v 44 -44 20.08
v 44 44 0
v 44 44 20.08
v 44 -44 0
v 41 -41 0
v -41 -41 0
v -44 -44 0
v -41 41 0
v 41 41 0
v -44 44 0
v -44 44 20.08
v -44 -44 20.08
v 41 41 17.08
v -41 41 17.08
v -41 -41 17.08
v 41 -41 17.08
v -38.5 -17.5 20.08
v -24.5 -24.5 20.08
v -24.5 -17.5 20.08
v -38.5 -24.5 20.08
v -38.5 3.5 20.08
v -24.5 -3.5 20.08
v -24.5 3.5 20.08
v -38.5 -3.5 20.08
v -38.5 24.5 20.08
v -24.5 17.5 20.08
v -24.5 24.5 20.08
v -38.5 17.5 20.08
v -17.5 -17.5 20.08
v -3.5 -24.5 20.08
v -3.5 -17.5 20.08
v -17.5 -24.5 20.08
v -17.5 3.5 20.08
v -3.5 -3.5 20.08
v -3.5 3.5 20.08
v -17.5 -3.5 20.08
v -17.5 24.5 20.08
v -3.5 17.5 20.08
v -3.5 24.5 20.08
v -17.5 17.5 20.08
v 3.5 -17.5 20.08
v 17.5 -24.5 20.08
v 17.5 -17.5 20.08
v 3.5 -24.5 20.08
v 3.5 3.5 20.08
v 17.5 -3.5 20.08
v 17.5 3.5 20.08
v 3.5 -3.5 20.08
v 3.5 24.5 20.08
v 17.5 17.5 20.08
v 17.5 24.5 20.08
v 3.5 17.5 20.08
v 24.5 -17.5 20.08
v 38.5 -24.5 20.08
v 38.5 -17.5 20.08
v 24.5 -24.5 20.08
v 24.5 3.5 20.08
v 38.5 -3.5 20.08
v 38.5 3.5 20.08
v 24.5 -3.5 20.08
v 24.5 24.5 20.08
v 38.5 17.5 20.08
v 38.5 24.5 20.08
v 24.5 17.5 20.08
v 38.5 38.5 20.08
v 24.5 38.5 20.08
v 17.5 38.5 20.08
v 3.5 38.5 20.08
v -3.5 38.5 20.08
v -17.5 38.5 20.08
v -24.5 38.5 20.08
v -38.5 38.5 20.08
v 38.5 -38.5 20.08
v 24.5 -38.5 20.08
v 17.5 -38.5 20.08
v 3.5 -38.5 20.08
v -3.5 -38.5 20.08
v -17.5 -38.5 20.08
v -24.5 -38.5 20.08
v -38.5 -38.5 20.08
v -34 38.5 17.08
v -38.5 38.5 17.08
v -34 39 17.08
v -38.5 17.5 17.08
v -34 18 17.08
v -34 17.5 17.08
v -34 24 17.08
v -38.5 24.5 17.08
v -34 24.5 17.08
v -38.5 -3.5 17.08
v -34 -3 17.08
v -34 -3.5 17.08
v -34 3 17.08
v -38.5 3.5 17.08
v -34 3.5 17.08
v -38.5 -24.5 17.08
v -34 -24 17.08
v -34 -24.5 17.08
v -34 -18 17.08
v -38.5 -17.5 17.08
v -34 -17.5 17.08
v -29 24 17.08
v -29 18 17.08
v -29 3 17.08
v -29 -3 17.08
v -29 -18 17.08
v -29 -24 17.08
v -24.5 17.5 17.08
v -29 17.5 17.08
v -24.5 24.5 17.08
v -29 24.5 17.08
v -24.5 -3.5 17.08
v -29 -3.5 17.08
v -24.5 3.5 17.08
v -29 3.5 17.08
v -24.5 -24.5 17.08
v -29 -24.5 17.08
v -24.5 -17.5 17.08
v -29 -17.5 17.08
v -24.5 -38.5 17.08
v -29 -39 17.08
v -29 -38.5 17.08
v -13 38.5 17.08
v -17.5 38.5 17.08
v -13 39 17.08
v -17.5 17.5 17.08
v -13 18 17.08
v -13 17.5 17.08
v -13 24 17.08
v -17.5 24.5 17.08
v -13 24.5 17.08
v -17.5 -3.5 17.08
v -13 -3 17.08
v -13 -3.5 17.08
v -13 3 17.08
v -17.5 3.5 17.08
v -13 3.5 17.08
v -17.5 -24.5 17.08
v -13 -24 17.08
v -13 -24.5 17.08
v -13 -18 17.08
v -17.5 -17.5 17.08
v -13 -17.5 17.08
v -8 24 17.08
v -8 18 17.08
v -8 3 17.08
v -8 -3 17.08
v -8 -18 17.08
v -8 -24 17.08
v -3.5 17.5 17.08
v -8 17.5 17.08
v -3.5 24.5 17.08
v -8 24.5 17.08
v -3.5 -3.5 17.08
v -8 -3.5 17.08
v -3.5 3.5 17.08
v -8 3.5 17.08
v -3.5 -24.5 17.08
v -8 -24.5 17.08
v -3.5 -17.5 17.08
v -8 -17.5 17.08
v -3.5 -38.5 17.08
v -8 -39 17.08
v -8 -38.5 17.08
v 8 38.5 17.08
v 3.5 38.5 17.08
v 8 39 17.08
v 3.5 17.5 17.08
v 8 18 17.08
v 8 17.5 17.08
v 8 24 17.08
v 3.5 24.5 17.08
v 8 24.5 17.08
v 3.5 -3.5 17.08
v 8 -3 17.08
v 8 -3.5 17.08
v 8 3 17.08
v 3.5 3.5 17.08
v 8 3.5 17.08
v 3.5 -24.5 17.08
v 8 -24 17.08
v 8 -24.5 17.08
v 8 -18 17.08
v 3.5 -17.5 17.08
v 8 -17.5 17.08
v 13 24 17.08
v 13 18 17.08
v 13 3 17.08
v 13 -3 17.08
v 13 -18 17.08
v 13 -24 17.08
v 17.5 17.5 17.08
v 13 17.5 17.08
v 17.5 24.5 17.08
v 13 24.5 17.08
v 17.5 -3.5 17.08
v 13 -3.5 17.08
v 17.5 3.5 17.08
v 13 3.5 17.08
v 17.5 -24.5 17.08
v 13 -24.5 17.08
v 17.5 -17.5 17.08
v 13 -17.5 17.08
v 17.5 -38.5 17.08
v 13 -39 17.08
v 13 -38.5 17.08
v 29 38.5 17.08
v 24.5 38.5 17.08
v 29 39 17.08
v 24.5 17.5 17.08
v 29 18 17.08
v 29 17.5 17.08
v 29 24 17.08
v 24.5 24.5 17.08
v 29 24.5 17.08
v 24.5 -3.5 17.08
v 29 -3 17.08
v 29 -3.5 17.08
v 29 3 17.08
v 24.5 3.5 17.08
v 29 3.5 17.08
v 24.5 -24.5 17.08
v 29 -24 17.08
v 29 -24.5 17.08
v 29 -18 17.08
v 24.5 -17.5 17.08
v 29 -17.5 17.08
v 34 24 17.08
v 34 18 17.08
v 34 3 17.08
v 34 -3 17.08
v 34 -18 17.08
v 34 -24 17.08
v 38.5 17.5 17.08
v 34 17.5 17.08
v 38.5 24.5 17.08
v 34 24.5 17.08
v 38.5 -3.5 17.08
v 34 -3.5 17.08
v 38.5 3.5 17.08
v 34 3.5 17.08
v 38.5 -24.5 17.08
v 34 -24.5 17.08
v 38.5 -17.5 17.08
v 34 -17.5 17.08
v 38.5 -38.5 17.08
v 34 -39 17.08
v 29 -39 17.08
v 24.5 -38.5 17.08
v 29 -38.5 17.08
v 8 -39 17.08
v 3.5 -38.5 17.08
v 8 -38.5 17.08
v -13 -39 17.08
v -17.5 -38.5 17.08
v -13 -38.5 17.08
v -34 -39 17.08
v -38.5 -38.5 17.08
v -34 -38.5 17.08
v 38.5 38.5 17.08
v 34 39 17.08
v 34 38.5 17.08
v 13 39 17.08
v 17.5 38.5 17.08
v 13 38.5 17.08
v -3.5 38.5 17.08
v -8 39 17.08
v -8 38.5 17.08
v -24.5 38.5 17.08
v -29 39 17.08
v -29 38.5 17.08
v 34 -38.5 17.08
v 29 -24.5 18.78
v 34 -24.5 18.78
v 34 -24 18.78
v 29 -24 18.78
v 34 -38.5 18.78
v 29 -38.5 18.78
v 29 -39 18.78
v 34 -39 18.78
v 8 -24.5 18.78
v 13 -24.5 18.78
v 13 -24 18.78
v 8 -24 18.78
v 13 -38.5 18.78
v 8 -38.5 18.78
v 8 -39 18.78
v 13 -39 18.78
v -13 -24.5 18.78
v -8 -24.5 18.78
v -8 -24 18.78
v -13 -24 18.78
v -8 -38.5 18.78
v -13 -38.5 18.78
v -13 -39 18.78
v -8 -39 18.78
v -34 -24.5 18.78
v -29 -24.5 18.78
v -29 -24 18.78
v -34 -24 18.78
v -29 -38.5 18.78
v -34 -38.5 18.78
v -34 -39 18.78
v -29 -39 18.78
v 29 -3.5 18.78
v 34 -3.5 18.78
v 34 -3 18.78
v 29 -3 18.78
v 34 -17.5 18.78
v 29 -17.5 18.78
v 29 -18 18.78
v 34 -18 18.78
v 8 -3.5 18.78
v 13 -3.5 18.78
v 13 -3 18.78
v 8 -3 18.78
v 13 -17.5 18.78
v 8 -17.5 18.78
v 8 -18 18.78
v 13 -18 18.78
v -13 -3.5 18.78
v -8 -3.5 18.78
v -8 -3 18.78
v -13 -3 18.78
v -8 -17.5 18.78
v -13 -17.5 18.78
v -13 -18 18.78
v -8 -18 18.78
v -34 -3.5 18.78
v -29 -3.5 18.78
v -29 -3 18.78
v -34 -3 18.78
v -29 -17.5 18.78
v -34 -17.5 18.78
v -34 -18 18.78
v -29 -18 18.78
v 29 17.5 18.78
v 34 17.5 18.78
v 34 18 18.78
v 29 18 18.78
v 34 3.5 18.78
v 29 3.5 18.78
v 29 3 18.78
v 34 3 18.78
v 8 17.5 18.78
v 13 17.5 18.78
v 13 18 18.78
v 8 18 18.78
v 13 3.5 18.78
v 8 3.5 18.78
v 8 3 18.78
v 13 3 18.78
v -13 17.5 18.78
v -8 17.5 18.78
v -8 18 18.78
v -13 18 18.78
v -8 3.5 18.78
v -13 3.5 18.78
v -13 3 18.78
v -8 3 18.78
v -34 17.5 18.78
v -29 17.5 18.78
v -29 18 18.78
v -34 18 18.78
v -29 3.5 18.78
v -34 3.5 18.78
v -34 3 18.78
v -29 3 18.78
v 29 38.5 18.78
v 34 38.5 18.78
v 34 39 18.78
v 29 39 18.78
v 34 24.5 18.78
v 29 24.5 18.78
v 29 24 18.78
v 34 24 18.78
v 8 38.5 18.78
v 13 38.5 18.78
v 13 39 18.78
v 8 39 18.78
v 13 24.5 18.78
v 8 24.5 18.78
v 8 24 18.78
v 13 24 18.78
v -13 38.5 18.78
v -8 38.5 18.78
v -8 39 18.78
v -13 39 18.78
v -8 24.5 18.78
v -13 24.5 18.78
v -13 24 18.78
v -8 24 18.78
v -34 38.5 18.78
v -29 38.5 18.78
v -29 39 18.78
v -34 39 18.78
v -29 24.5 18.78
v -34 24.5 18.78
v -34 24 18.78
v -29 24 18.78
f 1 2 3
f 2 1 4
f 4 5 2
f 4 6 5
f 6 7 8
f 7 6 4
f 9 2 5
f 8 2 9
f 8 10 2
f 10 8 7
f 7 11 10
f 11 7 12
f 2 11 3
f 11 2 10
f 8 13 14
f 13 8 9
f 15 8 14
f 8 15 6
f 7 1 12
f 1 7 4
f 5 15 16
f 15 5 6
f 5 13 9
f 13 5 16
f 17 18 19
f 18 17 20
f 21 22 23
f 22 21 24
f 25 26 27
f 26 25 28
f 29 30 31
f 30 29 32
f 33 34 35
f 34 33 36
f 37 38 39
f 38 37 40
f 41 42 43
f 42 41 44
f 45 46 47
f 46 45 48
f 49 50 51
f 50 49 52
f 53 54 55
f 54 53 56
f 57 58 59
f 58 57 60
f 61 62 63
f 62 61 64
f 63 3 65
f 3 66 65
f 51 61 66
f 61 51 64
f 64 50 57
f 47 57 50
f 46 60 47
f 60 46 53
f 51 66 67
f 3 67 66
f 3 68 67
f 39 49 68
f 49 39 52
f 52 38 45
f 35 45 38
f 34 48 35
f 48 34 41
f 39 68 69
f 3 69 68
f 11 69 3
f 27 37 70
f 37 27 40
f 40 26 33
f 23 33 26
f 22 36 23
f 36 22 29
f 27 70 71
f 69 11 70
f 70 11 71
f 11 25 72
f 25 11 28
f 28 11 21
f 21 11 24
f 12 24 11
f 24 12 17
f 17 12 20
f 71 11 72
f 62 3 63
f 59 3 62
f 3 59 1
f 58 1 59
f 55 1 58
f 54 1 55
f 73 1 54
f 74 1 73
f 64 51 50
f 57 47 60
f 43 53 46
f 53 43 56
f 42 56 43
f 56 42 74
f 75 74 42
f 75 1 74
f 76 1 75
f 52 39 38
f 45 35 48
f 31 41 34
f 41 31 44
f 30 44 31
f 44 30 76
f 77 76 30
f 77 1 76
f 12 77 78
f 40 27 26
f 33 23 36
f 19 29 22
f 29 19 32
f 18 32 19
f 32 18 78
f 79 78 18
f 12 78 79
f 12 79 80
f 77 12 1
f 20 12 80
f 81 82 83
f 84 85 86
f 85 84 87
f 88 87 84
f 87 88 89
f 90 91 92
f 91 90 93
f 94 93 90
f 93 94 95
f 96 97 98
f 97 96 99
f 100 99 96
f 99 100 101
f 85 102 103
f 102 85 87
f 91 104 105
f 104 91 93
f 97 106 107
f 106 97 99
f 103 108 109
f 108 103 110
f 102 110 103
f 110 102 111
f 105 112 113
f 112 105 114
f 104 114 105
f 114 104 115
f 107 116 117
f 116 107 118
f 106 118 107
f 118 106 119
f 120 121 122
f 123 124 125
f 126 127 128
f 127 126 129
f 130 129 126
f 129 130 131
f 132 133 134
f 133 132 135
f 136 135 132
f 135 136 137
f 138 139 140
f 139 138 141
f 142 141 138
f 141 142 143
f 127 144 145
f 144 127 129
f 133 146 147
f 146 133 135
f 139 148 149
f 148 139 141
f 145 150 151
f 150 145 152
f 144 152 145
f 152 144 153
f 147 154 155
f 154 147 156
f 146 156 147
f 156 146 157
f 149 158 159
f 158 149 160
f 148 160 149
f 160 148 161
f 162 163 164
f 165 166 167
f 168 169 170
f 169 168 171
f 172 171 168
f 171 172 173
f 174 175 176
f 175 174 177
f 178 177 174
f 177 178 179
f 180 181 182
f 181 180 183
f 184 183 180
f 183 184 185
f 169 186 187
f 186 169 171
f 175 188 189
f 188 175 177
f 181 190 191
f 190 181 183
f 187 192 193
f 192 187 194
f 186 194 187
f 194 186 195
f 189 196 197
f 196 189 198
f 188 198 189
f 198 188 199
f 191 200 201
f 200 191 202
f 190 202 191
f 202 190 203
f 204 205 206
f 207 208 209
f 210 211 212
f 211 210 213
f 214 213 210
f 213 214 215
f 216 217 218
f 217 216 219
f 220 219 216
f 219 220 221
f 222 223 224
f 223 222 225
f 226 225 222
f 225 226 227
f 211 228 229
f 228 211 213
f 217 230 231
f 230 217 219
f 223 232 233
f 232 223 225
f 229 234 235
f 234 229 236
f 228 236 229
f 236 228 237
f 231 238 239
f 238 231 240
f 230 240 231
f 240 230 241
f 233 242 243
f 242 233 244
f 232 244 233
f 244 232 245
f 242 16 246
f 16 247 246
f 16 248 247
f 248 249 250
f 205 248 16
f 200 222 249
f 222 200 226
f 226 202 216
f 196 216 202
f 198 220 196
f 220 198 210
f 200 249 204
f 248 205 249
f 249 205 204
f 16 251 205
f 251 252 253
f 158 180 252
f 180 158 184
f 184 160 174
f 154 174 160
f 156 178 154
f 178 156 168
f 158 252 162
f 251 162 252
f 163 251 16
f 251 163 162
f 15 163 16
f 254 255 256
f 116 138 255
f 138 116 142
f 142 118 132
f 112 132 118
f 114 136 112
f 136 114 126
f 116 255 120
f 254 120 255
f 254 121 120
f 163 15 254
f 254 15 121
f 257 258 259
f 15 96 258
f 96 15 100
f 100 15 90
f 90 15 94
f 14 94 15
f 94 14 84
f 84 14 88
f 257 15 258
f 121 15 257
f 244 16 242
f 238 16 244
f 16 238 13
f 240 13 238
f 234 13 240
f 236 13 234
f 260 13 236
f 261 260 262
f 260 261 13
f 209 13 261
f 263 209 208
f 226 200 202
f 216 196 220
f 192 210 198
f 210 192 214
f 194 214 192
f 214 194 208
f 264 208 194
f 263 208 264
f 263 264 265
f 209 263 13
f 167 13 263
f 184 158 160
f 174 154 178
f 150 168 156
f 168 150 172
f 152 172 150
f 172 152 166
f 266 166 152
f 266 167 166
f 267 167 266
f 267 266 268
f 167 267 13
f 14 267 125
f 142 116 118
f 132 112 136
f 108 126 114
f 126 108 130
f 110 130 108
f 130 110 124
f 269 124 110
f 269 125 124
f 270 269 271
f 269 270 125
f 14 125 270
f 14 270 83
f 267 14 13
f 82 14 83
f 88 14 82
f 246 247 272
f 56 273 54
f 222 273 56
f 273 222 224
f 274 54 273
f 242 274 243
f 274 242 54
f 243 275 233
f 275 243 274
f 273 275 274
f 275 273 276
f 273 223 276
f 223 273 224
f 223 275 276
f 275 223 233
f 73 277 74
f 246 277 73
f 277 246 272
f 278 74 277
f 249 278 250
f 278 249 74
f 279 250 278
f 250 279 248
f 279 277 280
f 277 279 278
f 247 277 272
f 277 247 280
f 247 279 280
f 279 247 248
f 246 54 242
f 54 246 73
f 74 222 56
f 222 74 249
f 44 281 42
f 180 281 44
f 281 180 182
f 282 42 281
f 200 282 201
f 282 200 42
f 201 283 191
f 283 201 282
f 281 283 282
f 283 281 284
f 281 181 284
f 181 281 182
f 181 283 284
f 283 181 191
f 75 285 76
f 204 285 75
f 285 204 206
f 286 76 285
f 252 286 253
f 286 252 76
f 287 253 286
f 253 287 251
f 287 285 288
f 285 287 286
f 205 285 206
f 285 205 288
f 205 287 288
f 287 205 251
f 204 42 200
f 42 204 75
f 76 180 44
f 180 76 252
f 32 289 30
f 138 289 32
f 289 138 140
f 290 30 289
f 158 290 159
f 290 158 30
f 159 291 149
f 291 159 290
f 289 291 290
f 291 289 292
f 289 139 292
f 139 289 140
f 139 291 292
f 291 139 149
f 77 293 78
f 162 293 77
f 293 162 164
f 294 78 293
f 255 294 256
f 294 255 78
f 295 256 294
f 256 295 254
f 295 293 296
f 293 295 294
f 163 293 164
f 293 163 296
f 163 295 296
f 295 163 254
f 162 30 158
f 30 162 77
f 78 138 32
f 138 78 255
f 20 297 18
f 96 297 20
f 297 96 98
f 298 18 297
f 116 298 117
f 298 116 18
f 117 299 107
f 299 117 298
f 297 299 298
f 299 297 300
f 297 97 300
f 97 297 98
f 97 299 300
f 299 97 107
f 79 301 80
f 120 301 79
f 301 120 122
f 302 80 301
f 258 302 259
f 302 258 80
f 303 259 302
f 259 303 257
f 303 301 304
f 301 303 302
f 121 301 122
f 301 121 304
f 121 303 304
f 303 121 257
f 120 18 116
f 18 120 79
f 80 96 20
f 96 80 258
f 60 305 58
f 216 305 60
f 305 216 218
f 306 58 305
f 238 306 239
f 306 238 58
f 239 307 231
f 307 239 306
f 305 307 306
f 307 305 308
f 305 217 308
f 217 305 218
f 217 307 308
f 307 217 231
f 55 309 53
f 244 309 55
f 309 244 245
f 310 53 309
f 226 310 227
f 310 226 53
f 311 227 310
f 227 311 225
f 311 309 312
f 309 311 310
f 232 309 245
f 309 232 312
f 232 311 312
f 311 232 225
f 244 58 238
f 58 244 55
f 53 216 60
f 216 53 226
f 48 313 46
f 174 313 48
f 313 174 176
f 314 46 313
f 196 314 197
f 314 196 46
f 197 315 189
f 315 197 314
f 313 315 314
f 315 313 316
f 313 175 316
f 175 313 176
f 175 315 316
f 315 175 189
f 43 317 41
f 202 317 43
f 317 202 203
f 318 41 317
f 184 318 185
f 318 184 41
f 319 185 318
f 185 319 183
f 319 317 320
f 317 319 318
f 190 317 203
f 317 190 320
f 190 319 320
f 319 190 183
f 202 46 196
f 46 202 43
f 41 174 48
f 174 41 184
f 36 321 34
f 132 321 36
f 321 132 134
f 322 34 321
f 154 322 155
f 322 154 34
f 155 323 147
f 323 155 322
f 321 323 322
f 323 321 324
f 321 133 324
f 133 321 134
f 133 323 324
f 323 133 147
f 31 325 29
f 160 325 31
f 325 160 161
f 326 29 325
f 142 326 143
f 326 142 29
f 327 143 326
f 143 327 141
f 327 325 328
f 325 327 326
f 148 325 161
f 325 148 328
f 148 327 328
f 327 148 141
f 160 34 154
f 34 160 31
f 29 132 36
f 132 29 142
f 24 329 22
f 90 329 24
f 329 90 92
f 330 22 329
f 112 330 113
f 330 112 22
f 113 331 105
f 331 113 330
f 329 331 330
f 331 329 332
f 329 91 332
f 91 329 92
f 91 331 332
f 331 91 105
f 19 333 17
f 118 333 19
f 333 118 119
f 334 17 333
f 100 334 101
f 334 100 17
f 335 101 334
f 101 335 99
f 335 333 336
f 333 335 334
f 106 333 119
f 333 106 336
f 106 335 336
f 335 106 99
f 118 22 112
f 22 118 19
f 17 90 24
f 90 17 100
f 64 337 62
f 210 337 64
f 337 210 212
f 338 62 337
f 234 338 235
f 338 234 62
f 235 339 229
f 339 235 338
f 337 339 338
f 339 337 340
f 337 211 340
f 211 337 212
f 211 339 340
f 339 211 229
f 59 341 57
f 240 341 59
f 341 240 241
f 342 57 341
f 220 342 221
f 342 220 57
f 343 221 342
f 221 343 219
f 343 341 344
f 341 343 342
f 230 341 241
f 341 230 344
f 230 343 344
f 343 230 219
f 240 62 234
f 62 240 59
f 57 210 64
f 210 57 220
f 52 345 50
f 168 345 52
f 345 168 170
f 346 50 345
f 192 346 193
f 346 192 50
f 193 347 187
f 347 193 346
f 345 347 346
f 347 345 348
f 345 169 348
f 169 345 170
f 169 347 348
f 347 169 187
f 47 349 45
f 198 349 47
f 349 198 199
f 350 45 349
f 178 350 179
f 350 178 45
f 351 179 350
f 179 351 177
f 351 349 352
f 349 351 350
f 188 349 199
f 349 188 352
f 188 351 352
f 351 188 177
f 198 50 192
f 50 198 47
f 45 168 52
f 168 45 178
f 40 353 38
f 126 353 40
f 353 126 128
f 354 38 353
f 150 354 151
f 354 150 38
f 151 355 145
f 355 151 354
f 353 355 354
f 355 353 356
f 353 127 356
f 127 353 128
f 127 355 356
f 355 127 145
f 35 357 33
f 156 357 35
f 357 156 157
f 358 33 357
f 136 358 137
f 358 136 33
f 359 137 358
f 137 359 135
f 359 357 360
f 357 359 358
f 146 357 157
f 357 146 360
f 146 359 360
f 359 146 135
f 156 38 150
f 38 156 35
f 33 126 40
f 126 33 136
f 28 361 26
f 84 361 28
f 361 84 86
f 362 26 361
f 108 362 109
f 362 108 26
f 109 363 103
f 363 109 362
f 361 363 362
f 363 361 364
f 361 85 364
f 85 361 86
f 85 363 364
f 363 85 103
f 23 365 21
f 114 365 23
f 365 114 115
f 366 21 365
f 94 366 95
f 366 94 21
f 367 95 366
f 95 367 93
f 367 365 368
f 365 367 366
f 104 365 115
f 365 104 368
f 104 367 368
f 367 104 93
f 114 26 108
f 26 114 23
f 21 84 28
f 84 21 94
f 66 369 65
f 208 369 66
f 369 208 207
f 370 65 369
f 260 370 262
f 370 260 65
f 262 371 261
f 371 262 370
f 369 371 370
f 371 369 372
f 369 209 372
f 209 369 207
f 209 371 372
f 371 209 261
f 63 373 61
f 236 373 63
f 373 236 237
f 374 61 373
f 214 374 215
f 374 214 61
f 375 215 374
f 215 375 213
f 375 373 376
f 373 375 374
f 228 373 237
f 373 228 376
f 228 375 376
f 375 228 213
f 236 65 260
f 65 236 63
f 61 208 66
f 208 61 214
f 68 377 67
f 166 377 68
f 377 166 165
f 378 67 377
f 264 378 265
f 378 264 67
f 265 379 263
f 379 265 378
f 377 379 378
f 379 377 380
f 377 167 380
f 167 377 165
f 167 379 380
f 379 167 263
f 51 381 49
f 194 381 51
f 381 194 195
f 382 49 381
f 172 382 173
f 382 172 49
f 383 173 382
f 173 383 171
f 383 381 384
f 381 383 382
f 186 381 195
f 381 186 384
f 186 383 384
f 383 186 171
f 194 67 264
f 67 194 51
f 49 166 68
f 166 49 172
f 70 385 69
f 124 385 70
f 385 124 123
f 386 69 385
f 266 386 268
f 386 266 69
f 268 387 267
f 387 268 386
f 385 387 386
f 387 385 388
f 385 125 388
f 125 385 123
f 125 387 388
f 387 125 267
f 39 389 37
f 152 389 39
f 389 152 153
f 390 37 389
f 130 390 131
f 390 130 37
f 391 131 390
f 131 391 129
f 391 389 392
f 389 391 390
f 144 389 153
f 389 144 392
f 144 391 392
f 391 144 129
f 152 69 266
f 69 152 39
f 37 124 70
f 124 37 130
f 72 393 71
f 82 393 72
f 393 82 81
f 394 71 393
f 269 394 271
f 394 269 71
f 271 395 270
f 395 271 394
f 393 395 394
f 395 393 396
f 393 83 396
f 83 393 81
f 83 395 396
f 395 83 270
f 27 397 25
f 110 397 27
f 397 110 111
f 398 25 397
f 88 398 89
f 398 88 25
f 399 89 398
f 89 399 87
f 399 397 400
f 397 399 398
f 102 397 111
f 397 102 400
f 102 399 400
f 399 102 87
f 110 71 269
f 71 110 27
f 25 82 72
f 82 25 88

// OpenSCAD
// Generated by SolidPython 1.0.4 on 2020-12-13 17:19:32


union() {
	translate(v = [0, 0, 10.0400000000]) {
		union() {
			translate(v = [0, 42.5000000000, 0]) {
				cube(center = true, size = [88.0000000000, 3, 20.0800000000]);
			}
			translate(v = [-42.5000000000, 0, 0]) {
				cube(center = true, size = [3, 88.0000000000, 20.0800000000]);
			}
			rotate(a = 180) {
				translate(v = [0, 42.5000000000, 0]) {
					cube(center = true, size = [88.0000000000, 3, 20.0800000000]);
				}
			}
			rotate(a = 180) {
				translate(v = [-42.5000000000, 0, 0]) {
					cube(center = true, size = [3, 88.0000000000, 20.0800000000]);
				}
			}
		}
	}
	translate(v = [0, 0, 17.0800000000]) {
		translate(v = [31.5000000000, 0, 0]) {
			translate(v = [0, -31.5000000000, 0]) {
				translate(v = [-0.0000000000, 0, 0]) {
					translate(v = [0, 0.0000000000, 0]) {
						union() {
							translate(v = [0, 7.7500000000, 0]) {
								translate(v = [0, 0, 1.5000000000]) {
									difference() {
										cube(center = true, size = [17.0000000000, 1.5000000000, 3]);
										translate(v = [0, 0, -1.3000000000]) {
											translate(v = [0, -0.7500000000, 0]) {
												cube(center = true, size = [5, 1.0000000000, 3]);
											}
										}
									}
								}
							}
							translate(v = [-7.7500000000, 0, 0]) {
								translate(v = [0, 0, 1.5000000000]) {
									cube(center = true, size = [1.5000000000, 17.0000000000, 3]);
								}
							}
							mirror(v = [0, 1, 0]) {
								mirror(v = [1, 0, 0]) {
									union() {
										translate(v = [0, 7.7500000000, 0]) {
											translate(v = [0, 0, 1.5000000000]) {
												difference() {
													cube(center = true, size = [17.0000000000, 1.5000000000, 3]);
													translate(v = [0, 0, -1.3000000000]) {
														translate(v = [0, -0.7500000000, 0]) {
															cube(center = true, size = [5, 1.0000000000, 3]);
														}
													}
												}
											}
										}
										translate(v = [-7.7500000000, 0, 0]) {
											translate(v = [0, 0, 1.5000000000]) {
												cube(center = true, size = [1.5000000000, 17.0000000000, 3]);
											}
										}
									}
								}
							}
							translate(v = [0, 0, 1.5000000000]) {
								translate(v = [0, 10.5000000000, 0]) {
									cube(center = true, size = [25.0000000000, 4, 3]);
								}
							}
							rotate(a = 90) {
								translate(v = [0, 0, 1.5000000000]) {
									translate(v = [0, 10.5000000000, 0]) {
										cube(center = true, size = [25.0000000000, 4, 3]);
									}
								}
							}
							rotate(a = 180) {
								translate(v = [0, 0, 1.5000000000]) {
									translate(v = [0, 10.5000000000, 0]) {
										cube(center = true, size = [25.0000000000, 4, 3]);
									}
								}
							}
							rotate(a = 270) {
								translate(v = [0, 0, 1.5000000000]) {
									translate(v = [0, 10.5000000000, 0]) {
										cube(center = true, size = [25.0000000000, 4, 3]);
									}
								}
							}
						}
					}
				}
				translate(v = [-21.0000000000, 0, 0]) {
					translate(v = [0, 0.0000000000, 0]) {
						union() {
							translate(v = [0, 7.7500000000, 0]) {
								translate(v = [0, 0, 1.5000000000]) {
									difference() {
										cube(center = true, size = [17.0000000000, 1.5000000000, 3]);
										translate(v = [0, 0, -1.3000000000]) {
											translate(v = [0, -0.7500000000, 0]) {
												cube(center = true, size = [5, 1.0000000000, 3]);
											}
										}
									}
								}
							}
							translate(v = [-7.7500000000, 0, 0]) {
								translate(v = [0, 0, 1.5000000000]) {
									cube(center = true, size = [1.5000000000, 17.0000000000, 3]);
								}
							}
							mirror(v = [0, 1, 0]) {
								mirror(v = [1, 0, 0]) {
									union() {
										translate(v = [0, 7.7500000000, 0]) {
											translate(v = [0, 0, 1.5000000000]) {
												difference() {
													cube(center = true, size = [17.0000000000, 1.5000000000, 3]);
													translate(v = [0, 0, -1.3000000000]) {
														translate(v = [0, -0.7500000000, 0]) {
															cube(center = true, size = [5, 1.0000000000, 3]);
														}
													}
												}
											}
										}
										translate(v = [-7.7500000000, 0, 0]) {
											translate(v = [0, 0, 1.5000000000]) {
												cube(center = true, size = [1.5000000000, 17.0000000000, 3]);
											}
										}
									}
								}
							}
							translate(v = [0, 0, 1.5000000000]) {
								translate(v = [0, 10.5000000000, 0]) {
									cube(center = true, size = [25.0000000000, 4, 3]);
								}
							}
							rotate(a = 90) {
								translate(v = [0, 0, 1.5000000000]) {
									translate(v = [0, 10.5000000000, 0]) {
										cube(center = true, size = [25.0000000000, 4, 3]);
									}
								}
							}
							rotate(a = 180) {
								translate(v = [0, 0, 1.5000000000]) {
									translate(v = [0, 10.5000000000, 0]) {
										cube(center = true, size = [25.0000000000, 4, 3]);
									}
								}
							}
							rotate(a = 270) {
								translate(v = [0, 0, 1.5000000000]) {
									translate(v = [0, 10.5000000000, 0]) {
										cube(center = true, size = [25.0000000000, 4, 3]);
									}
								}
							}
						}
					}
				}
				translate(v = [-42.0000000000, 0, 0]) {
					translate(v = [0, 0.0000000000, 0]) {
						union() {
							translate(v = [0, 7.7500000000, 0]) {
								translate(v = [0, 0, 1.5000000000]) {
									difference() {
										cube(center = true, size = [17.0000000000, 1.5000000000, 3]);
										translate(v = [0, 0, -1.3000000000]) {
											translate(v = [0, -0.7500000000, 0]) {
												cube(center = true, size = [5, 1.0000000000, 3]);
											}
										}
									}
								}
							}
							translate(v = [-7.7500000000, 0, 0]) {
								translate(v = [0, 0, 1.5000000000]) {
									cube(center = true, size = [1.5000000000, 17.0000000000, 3]);
								}
							}
							mirror(v = [0, 1, 0]) {
								mirror(v = [1, 0, 0]) {
									union() {
										translate(v = [0, 7.7500000000, 0]) {
											translate(v = [0, 0, 1.5000000000]) {
												difference() {
													cube(center = true, size = [17.0000000000, 1.5000000000, 3]);
													translate(v = [0, 0, -1.3000000000]) {
														translate(v = [0, -0.7500000000, 0]) {
															cube(center = true, size = [5, 1.0000000000, 3]);
														}
													}
												}
											}
										}
										translate(v = [-7.7500000000, 0, 0]) {
											translate(v = [0, 0, 1.5000000000]) {
												cube(center = true, size = [1.5000000000, 17.0000000000, 3]);
											}
										}
									}
								}
							}
							translate(v = [0, 0, 1.5000000000]) {
								translate(v = [0, 10.5000000000, 0]) {
									cube(center = true, size = [25.0000000000, 4, 3]);
								}
							}
							rotate(a = 90) {
								translate(v = [0, 0, 1.5000000000]) {
									translate(v = [0, 10.5000000000, 0]) {
										cube(center = true, size = [25.0000000000, 4, 3]);
									}
								}
							}
							rotate(a = 180) {
								translate(v = [0, 0, 1.5000000000]) {
									translate(v = [0, 10.5000000000, 0]) {
										cube(center = true, size = [25.0000000000, 4, 3]);
									}
								}
							}
							rotate(a = 270) {
								translate(v = [0, 0, 1.5000000000]) {
									translate(v = [0, 10.5000000000, 0]) {
										cube(center = true, size = [25.0000000000, 4, 3]);
									}
								}
							}
						}
					}
				}
				translate(v = [-63.0000000000, 0, 0]) {
					translate(v = [0, 0.0000000000, 0]) {
						union() {
							translate(v = [0, 7.7500000000, 0]) {
								translate(v = [0, 0, 1.5000000000]) {
									difference() {
										cube(center = true, size = [17.0000000000, 1.5000000000, 3]);
										translate(v = [0, 0, -1.3000000000]) {
											translate(v = [0, -0.7500000000, 0]) {
												cube(center = true, size = [5, 1.0000000000, 3]);
											}
										}
									}
								}
							}
							translate(v = [-7.7500000000, 0, 0]) {
								translate(v = [0, 0, 1.5000000000]) {
									cube(center = true, size = [1.5000000000, 17.0000000000, 3]);
								}
							}
							mirror(v = [0, 1, 0]) {
								mirror(v = [1, 0, 0]) {
									union() {
										translate(v = [0, 7.7500000000, 0]) {
											translate(v = [0, 0, 1.5000000000]) {
												difference() {
													cube(center = true, size = [17.0000000000, 1.5000000000, 3]);
													translate(v = [0, 0, -1.3000000000]) {
														translate(v = [0, -0.7500000000, 0]) {
															cube(center = true, size = [5, 1.0000000000, 3]);
														}
													}
												}
											}
										}
										translate(v = [-7.7500000000, 0, 0]) {
											translate(v = [0, 0, 1.5000000000]) {
												cube(center = true, size = [1.5000000000, 17.0000000000, 3]);
											}
										}
									}
								}
							}
							translate(v = [0, 0, 1.5000000000]) {
								translate(v = [0, 10.5000000000, 0]) {
									cube(center = true, size = [25.0000000000, 4, 3]);
								}
							}
							rotate(a = 90) {
								translate(v = [0, 0, 1.5000000000]) {
									translate(v = [0, 10.5000000000, 0]) {
										cube(center = true, size = [25.0000000000, 4, 3]);
									}
								}
							}
							rotate(a = 180) {
								translate(v = [0, 0, 1.5000000000]) {
									translate(v = [0, 10.5000000000, 0]) {
										cube(center = true, size = [25.0000000000, 4, 3]);
									}
								}
							}
							rotate(a = 270) {
								translate(v = [0, 0, 1.5000000000]) {
									translate(v = [0, 10.5000000000, 0]) {
										cube(center = true, size = [25.0000000000, 4, 3]);
									}
								}
							}
						}
					}
				}
				translate(v = [-0.0000000000, 0, 0]) {
					translate(v = [0, 21.0000000000, 0]) {
						union() {
							translate(v = [0, 7.7500000000, 0]) {
								translate(v = [0, 0, 1.5000000000]) {
									difference() {
										cube(center = true, size = [17.0000000000, 1.5000000000, 3]);
										translate(v = [0, 0, -1.3000000000]) {
											translate(v = [0, -0.7500000000, 0]) {
												cube(center = true, size = [5, 1.0000000000, 3]);
											}
										}
									}
								}
							}
							translate(v = [-7.7500000000, 0, 0]) {
								translate(v = [0, 0, 1.5000000000]) {
									cube(center = true, size = [1.5000000000, 17.0000000000, 3]);
								}
							}
							mirror(v = [0, 1, 0]) {
								mirror(v = [1, 0, 0]) {
									union() {
										translate(v = [0, 7.7500000000, 0]) {
											translate(v = [0, 0, 1.5000000000]) {
												difference() {
													cube(center = true, size = [17.0000000000, 1.5000000000, 3]);
													translate(v = [0, 0, -1.3000000000]) {
														translate(v = [0, -0.7500000000, 0]) {
															cube(center = true, size = [5, 1.0000000000, 3]);
														}
													}
												}
											}
										}
										translate(v = [-7.7500000000, 0, 0]) {
											translate(v = [0, 0, 1.5000000000]) {
												cube(center = true, size = [1.5000000000, 17.0000000000, 3]);
											}
										}
									}
								}
							}
							translate(v = [0, 0, 1.5000000000]) {
								translate(v = [0, 10.5000000000, 0]) {
									cube(center = true, size = [25.0000000000, 4, 3]);
								}
							}
							rotate(a = 90) {
								translate(v = [0, 0, 1.5000000000]) {
									translate(v = [0, 10.5000000000, 0]) {
										cube(center = true, size = [25.0000000000, 4, 3]);
									}
								}
							}
							rotate(a = 180) {
								translate(v = [0, 0, 1.5000000000]) {
									translate(v = [0, 10.5000000000, 0]) {
										cube(center = true, size = [25.0000000000, 4, 3]);
									}
								}
							}
							rotate(a = 270) {
								translate(v = [0, 0, 1.5000000000]) {
									translate(v = [0, 10.5000000000, 0]) {
										cube(center = true, size = [25.0000000000, 4, 3]);
									}
								}
							}
						}
					}
				}
				translate(v = [-21.0000000000, 0, 0]) {
					translate(v = [0, 21.0000000000, 0]) {
						union() {
							translate(v = [0, 7.7500000000, 0]) {
								translate(v = [0, 0, 1.5000000000]) {
									difference() {
										cube(center = true, size = [17.0000000000, 1.5000000000, 3]);
										translate(v = [0, 0, -1.3000000000]) {
											translate(v = [0, -0.7500000000, 0]) {
												cube(center = true, size = [5, 1.0000000000, 3]);
											}
										}
									}
								}
							}
							translate(v = [-7.7500000000, 0, 0]) {
								translate(v = [0, 0, 1.5000000000]) {
									cube(center = true, size = [1.5000000000, 17.0000000000, 3]);
								}
							}
							mirror(v = [0, 1, 0]) {
								mirror(v = [1, 0, 0]) {
									union() {
										translate(v = [0, 7.7500000000, 0]) {
											translate(v = [0, 0, 1.5000000000]) {
												difference() {
													cube(center = true, size = [17.0000000000, 1.5000000000, 3]);
													translate(v = [0, 0, -1.3000000000]) {
														translate(v = [0, -0.7500000000, 0]) {
															cube(center = true, size = [5, 1.0000000000, 3]);
														}
													}
												}
											}
										}
										translate(v = [-7.7500000000, 0, 0]) {
											translate(v = [0, 0, 1.5000000000]) {
												cube(center = true, size = [1.5000000000, 17.0000000000, 3]);
											}
										}
									}
								}
							}
							translate(v = [0, 0, 1.5000000000]) {
								translate(v = [0, 10.5000000000, 0]) {
									cube(center = true, size = [25.0000000000, 4, 3]);
								}
							}
							rotate(a = 90) {
								translate(v = [0, 0, 1.5000000000]) {
									translate(v = [0, 10.5000000000, 0]) {
										cube(center = true, size = [25.0000000000, 4, 3]);
									}
								}
							}
							rotate(a = 180) {
								translate(v = [0, 0, 1.5000000000]) {
									translate(v = [0, 10.5000000000, 0]) {
										cube(center = true, size = [25.0000000000, 4, 3]);
									}
								}
							}
							rotate(a = 270) {
								translate(v = [0, 0, 1.5000000000]) {
									translate(v = [0, 10.5000000000, 0]) {
										cube(center = true, size = [25.0000000000, 4, 3]);
									}
								}
							}
						}
					}
				}
				translate(v = [-42.0000000000, 0, 0]) {
					translate(v = [0, 21.0000000000, 0]) {
						union() {
							translate(v = [0, 7.7500000000, 0]) {
								translate(v = [0, 0, 1.5000000000]) {
									difference() {
										cube(center = true, size = [17.0000000000, 1.5000000000, 3]);
										translate(v = [0, 0, -1.3000000000]) {
											translate(v = [0, -0.7500000000, 0]) {
												cube(center = true, size = [5, 1.0000000000, 3]);
											}
										}
									}
								}
							}
							translate(v = [-7.7500000000, 0, 0]) {
								translate(v = [0, 0, 1.5000000000]) {
									cube(center = true, size = [1.5000000000, 17.0000000000, 3]);
								}
							}
							mirror(v = [0, 1, 0]) {
								mirror(v = [1, 0, 0]) {
									union() {
										translate(v = [0, 7.7500000000, 0]) {
											translate(v = [0, 0, 1.5000000000]) {
												difference() {
													cube(center = true, size = [17.0000000000, 1.5000000000, 3]);
													translate(v = [0, 0, -1.3000000000]) {
														translate(v = [0, -0.7500000000, 0]) {
															cube(center = true, size = [5, 1.0000000000, 3]);
														}
													}
												}
											}
										}
										translate(v = [-7.7500000000, 0, 0]) {
											translate(v = [0, 0, 1.5000000000]) {
												cube(center = true, size = [1.5000000000, 17.0000000000, 3]);
											}
										}
									}
								}
							}
							translate(v = [0, 0, 1.5000000000]) {
								translate(v = [0, 10.5000000000, 0]) {
									cube(center = true, size = [25.0000000000, 4, 3]);
								}
							}
							rotate(a = 90) {
								translate(v = [0, 0, 1.5000000000]) {
									translate(v = [0, 10.5000000000, 0]) {
										cube(center = true, size = [25.0000000000, 4, 3]);
									}
								}
							}
							rotate(a = 180) {
								translate(v = [0, 0, 1.5000000000]) {
									translate(v = [0, 10.5000000000, 0]) {
										cube(center = true, size = [25.0000000000, 4, 3]);
									}
								}
							}
							rotate(a = 270) {
								translate(v = [0, 0, 1.5000000000]) {
									translate(v = [0, 10.5000000000, 0]) {
										cube(center = true, size = [25.0000000000, 4, 3]);
									}
								}
							}
						}
					}
				}
				translate(v = [-63.0000000000, 0, 0]) {
					translate(v = [0, 21.0000000000, 0]) {
						union() {
							translate(v = [0, 7.7500000000, 0]) {
								translate(v = [0, 0, 1.5000000000]) {
									difference() {
										cube(center = true, size = [17.0000000000, 1.5000000000, 3]);
										translate(v = [0, 0, -1.3000000000]) {
											translate(v = [0, -0.7500000000, 0]) {
												cube(center = true, size = [5, 1.0000000000, 3]);
											}
										}
									}
								}
							}
							translate(v = [-7.7500000000, 0, 0]) {
								translate(v = [0, 0, 1.5000000000]) {
									cube(center = true, size = [1.5000000000, 17.0000000000, 3]);
								}
							}
							mirror(v = [0, 1, 0]) {
								mirror(v = [1, 0, 0]) {
									union() {
										translate(v = [0, 7.7500000000, 0]) {
											translate(v = [0, 0, 1.5000000000]) {
												difference() {
													cube(center = true, size = [17.0000000000, 1.5000000000, 3]);
													translate(v = [0, 0, -1.3000000000]) {
														translate(v = [0, -0.7500000000, 0]) {
															cube(center = true, size = [5, 1.0000000000, 3]);
														}
													}
												}
											}
										}
										translate(v = [-7.7500000000, 0, 0]) {
											translate(v = [0, 0, 1.5000000000]) {
												cube(center = true, size = [1.5000000000, 17.0000000000, 3]);
											}
										}
									}
								}
							}
							translate(v = [0, 0, 1.5000000000]) {
								translate(v = [0, 10.5000000000, 0]) {
									cube(center = true, size = [25.0000000000, 4, 3]);
								}
							}
							rotate(a = 90) {
								translate(v = [0, 0, 1.5000000000]) {
									translate(v = [0, 10.5000000000, 0]) {
										cube(center = true, size = [25.0000000000, 4, 3]);
									}
								}
							}
							rotate(a = 180) {
								translate(v = [0, 0, 1.5000000000]) {
									translate(v = [0, 10.5000000000, 0]) {
										cube(center = true, size = [25.0000000000, 4, 3]);
									}
								}
							}
							rotate(a = 270) {
								translate(v = [0, 0, 1.5000000000]) {
									translate(v = [0, 10.5000000000, 0]) {
										cube(center = true, size = [25.0000000000, 4, 3]);
									}
								}
							}
						}
					}
				}
				translate(v = [-0.0000000000, 0, 0]) {
					translate(v = [0, 42.0000000000, 0]) {
						union() {
							translate(v = [0, 7.7500000000, 0]) {
								translate(v = [0, 0, 1.5000000000]) {
									difference() {
										cube(center = true, size = [17.0000000000, 1.5000000000, 3]);
										translate(v = [0, 0, -1.3000000000]) {
											translate(v = [0, -0.7500000000, 0]) {
												cube(center = true, size = [5, 1.0000000000, 3]);
											}
										}
									}
								}
							}
							translate(v = [-7.7500000000, 0, 0]) {
								translate(v = [0, 0, 1.5000000000]) {
									cube(center = true, size = [1.5000000000, 17.0000000000, 3]);
								}
							}
							mirror(v = [0, 1, 0]) {
								mirror(v = [1, 0, 0]) {
									union() {
										translate(v = [0, 7.7500000000, 0]) {
											translate(v = [0, 0, 1.5000000000]) {
												difference() {
													cube(center = true, size = [17.0000000000, 1.5000000000, 3]);
													translate(v = [0, 0, -1.3000000000]) {
														translate(v = [0, -0.7500000000, 0]) {
															cube(center = true, size = [5, 1.0000000000, 3]);
														}
													}
												}
											}
										}
										translate(v = [-7.7500000000, 0, 0]) {
											translate(v = [0, 0, 1.5000000000]) {
												cube(center = true, size = [1.5000000000, 17.0000000000, 3]);
											}
										}
									}
								}
							}
							translate(v = [0, 0, 1.5000000000]) {
								translate(v = [0, 10.5000000000, 0]) {
									cube(center = true, size = [25.0000000000, 4, 3]);
								}
							}
							rotate(a = 90) {
								translate(v = [0, 0, 1.5000000000]) {
									translate(v = [0, 10.5000000000, 0]) {
										cube(center = true, size = [25.0000000000, 4, 3]);
									}
								}
							}
							rotate(a = 180) {
								translate(v = [0, 0, 1.5000000000]) {
									translate(v = [0, 10.5000000000, 0]) {
										cube(center = true, size = [25.0000000000, 4, 3]);
									}
								}
							}
							rotate(a = 270) {
								translate(v = [0, 0, 1.5000000000]) {
									translate(v = [0, 10.5000000000, 0]) {
										cube(center = true, size = [25.0000000000, 4, 3]);
									}
								}
							}
						}
					}
				}
				translate(v = [-21.0000000000, 0, 0]) {
					translate(v = [0, 42.0000000000, 0]) {
						union() {
							translate(v = [0, 7.7500000000, 0]) {
								translate(v = [0, 0, 1.5000000000]) {
									difference() {
										cube(center = true, size = [17.0000000000, 1.5000000000, 3]);
										translate(v = [0, 0, -1.3000000000]) {
											translate(v = [0, -0.7500000000, 0]) {
												cube(center = true, size = [5, 1.0000000000, 3]);
											}
										}
									}
								}
							}
							translate(v = [-7.7500000000, 0, 0]) {
								translate(v = [0, 0, 1.5000000000]) {
									cube(center = true, size = [1.5000000000, 17.0000000000, 3]);
								}
							}
							mirror(v = [0, 1, 0]) {
								mirror(v = [1, 0, 0]) {
									union() {
										translate(v = [0, 7.7500000000, 0]) {
											translate(v = [0, 0, 1.5000000000]) {
												difference() {
													cube(center = true, size = [17.0000000000, 1.5000000000, 3]);
													translate(v = [0, 0, -1.3000000000]) {
														translate(v = [0, -0.7500000000, 0]) {
															cube(center = true, size = [5, 1.0000000000, 3]);
														}
													}
												}
											}
										}
										translate(v = [-7.7500000000, 0, 0]) {
											translate(v = [0, 0, 1.5000000000]) {
												cube(center = true, size = [1.5000000000, 17.0000000000, 3]);
											}
										}
									}
								}
							}
							translate(v = [0, 0, 1.5000000000]) {
								translate(v = [0, 10.5000000000, 0]) {
									cube(center = true, size = [25.0000000000, 4, 3]);
								}
							}
							rotate(a = 90) {
								translate(v = [0, 0, 1.5000000000]) {
									translate(v = [0, 10.5000000000, 0]) {
										cube(center = true, size = [25.0000000000, 4, 3]);
									}
								}
							}
							rotate(a = 180) {
								translate(v = [0, 0, 1.5000000000]) {
									translate(v = [0, 10.5000000000, 0]) {
										cube(center = true, size = [25.0000000000, 4, 3]);
									}
								}
							}
							rotate(a = 270) {
								translate(v = [0, 0, 1.5000000000]) {
									translate(v = [0, 10.5000000000, 0]) {
										cube(center = true, size = [25.0000000000, 4, 3]);
									}
								}
							}
						}
					}
				}
				translate(v = [-42.0000000000, 0, 0]) {
					translate(v = [0, 42.0000000000, 0]) {
						union() {
							translate(v = [0, 7.7500000000, 0]) {
								translate(v = [0, 0, 1.5000000000]) {
									difference() {
										cube(center = true, size = [17.0000000000, 1.5000000000, 3]);
										translate(v = [0, 0, -1.3000000000]) {
											translate(v = [0, -0.7500000000, 0]) {
												cube(center = true, size = [5, 1.0000000000, 3]);
											}
										}
									}
								}
							}
							translate(v = [-7.7500000000, 0, 0]) {
								translate(v = [0, 0, 1.5000000000]) {
									cube(center = true, size = [1.5000000000, 17.0000000000, 3]);
								}
							}
							mirror(v = [0, 1, 0]) {
								mirror(v = [1, 0, 0]) {
									union() {
										translate(v = [0, 7.7500000000, 0]) {
											translate(v = [0, 0, 1.5000000000]) {
												difference() {
													cube(center = true, size = [17.0000000000, 1.5000000000, 3]);
													translate(v = [0, 0, -1.3000000000]) {
														translate(v = [0, -0.7500000000, 0]) {
															cube(center = true, size = [5, 1.0000000000, 3]);
														}
													}
												}
											}
										}
										translate(v = [-7.7500000000, 0, 0]) {
											translate(v = [0, 0, 1.5000000000]) {
												cube(center = true, size = [1.5000000000, 17.0000000000, 3]);
											}
										}
									}
								}
							}
							translate(v = [0, 0, 1.5000000000]) {
								translate(v = [0, 10.5000000000, 0]) {
									cube(center = true, size = [25.0000000000, 4, 3]);
								}
							}
							rotate(a = 90) {
								translate(v = [0, 0, 1.5000000000]) {
									translate(v = [0, 10.5000000000, 0]) {
										cube(center = true, size = [25.0000000000, 4, 3]);
									}
								}
							}
							rotate(a = 180) {
								translate(v = [0, 0, 1.5000000000]) {
									translate(v = [0, 10.5000000000, 0]) {
										cube(center = true, size = [25.0000000000, 4, 3]);
									}
								}
							}
							rotate(a = 270) {
								translate(v = [0, 0, 1.5000000000]) {
									translate(v = [0, 10.5000000000, 0]) {
										cube(center = true, size = [25.0000000000, 4, 3]);
									}
								}
							}
						}
					}
				}
				translate(v = [-63.0000000000, 0, 0]) {
					translate(v = [0, 42.0000000000, 0]) {
						union() {
							translate(v = [0, 7.7500000000, 0]) {
								translate(v = [0, 0, 1.5000000000]) {
									difference() {
										cube(center = true, size = [17.0000000000, 1.5000000000, 3]);
										translate(v = [0, 0, -1.3000000000]) {
											translate(v = [0, -0.7500000000, 0]) {
												cube(center = true, size = [5, 1.0000000000, 3]);
											}
										}
									}
								}
							}
							translate(v = [-7.7500000000, 0, 0]) {
								translate(v = [0, 0, 1.5000000000]) {
									cube(center = true, size = [1.5000000000, 17.0000000000, 3]);
								}
							}
							mirror(v = [0, 1, 0]) {
								mirror(v = [1, 0, 0]) {
									union() {
										translate(v = [0, 7.7500000000, 0]) {
											translate(v = [0, 0, 1.5000000000]) {
												difference() {
													cube(center = true, size = [17.0000000000, 1.5000000000, 3]);
													translate(v = [0, 0, -1.3000000000]) {
														translate(v = [0, -0.7500000000, 0]) {
															cube(center = true, size = [5, 1.0000000000, 3]);
														}
													}
												}
											}
										}
										translate(v = [-7.7500000000, 0, 0]) {
											translate(v = [0, 0, 1.5000000000]) {
												cube(center = true, size = [1.5000000000, 17.0000000000, 3]);
											}
										}
									}
								}
							}
							translate(v = [0, 0, 1.5000000000]) {
								translate(v = [0, 10.5000000000, 0]) {
									cube(center = true, size = [25.0000000000, 4, 3]);
								}
							}
							rotate(a = 90) {
								translate(v = [0, 0, 1.5000000000]) {
									translate(v = [0, 10.5000000000, 0]) {
										cube(center = true, size = [25.0000000000, 4, 3]);
									}
								}
							}
							rotate(a = 180) {
								translate(v = [0, 0, 1.5000000000]) {
									translate(v = [0, 10.5000000000, 0]) {
										cube(center = true, size = [25.0000000000, 4, 3]);
									}
								}
							}
							rotate(a = 270) {
								translate(v = [0, 0, 1.5000000000]) {
									translate(v = [0, 10.5000000000, 0]) {
										cube(center = true, size = [25.0000000000, 4, 3]);
									}
								}
							}
						}
					}
				}
				translate(v = [-0.0000000000, 0, 0]) {
					translate(v = [0, 63.0000000000, 0]) {
						union() {
							translate(v = [0, 7.7500000000, 0]) {
								translate(v = [0, 0, 1.5000000000]) {
									difference() {
										cube(center = true, size = [17.0000000000, 1.5000000000, 3]);
										translate(v = [0, 0, -1.3000000000]) {
											translate(v = [0, -0.7500000000, 0]) {
												cube(center = true, size = [5, 1.0000000000, 3]);
											}
										}
									}
								}
							}
							translate(v = [-7.7500000000, 0, 0]) {
								translate(v = [0, 0, 1.5000000000]) {
									cube(center = true, size = [1.5000000000, 17.0000000000, 3]);
								}
							}
							mirror(v = [0, 1, 0]) {
								mirror(v = [1, 0, 0]) {
									union() {
										translate(v = [0, 7.7500000000, 0]) {
											translate(v = [0, 0, 1.5000000000]) {
												difference() {
													cube(center = true, size = [17.0000000000, 1.5000000000, 3]);
													translate(v = [0, 0, -1.3000000000]) {
														translate(v = [0, -0.7500000000, 0]) {
															cube(center = true, size = [5, 1.0000000000, 3]);
														}
													}
												}
											}
										}
										translate(v = [-7.7500000000, 0, 0]) {
											translate(v = [0, 0, 1.5000000000]) {
												cube(center = true, size = [1.5000000000, 17.0000000000, 3]);
											}
										}
									}
								}
							}
							translate(v = [0, 0, 1.5000000000]) {
								translate(v = [0, 10.5000000000, 0]) {
									cube(center = true, size = [25.0000000000, 4, 3]);
								}
							}
							rotate(a = 90) {
								translate(v = [0, 0, 1.5000000000]) {
									translate(v = [0, 10.5000000000, 0]) {
										cube(center = true, size = [25.0000000000, 4, 3]);
									}
								}
							}
							rotate(a = 180) {
								translate(v = [0, 0, 1.5000000000]) {
									translate(v = [0, 10.5000000000, 0]) {
										cube(center = true, size = [25.0000000000, 4, 3]);
									}
								}
							}
							rotate(a = 270) {
								translate(v = [0, 0, 1.5000000000]) {
									translate(v = [0, 10.5000000000, 0]) {
										cube(center = true, size = [25.0000000000, 4, 3]);
									}
								}
							}
						}
					}
				}
				translate(v = [-21.0000000000, 0, 0]) {
					translate(v = [0, 63.0000000000, 0]) {
						union() {
							translate(v = [0, 7.7500000000, 0]) {
								translate(v = [0, 0, 1.5000000000]) {
									difference() {
										cube(center = true, size = [17.0000000000, 1.5000000000, 3]);
										translate(v = [0, 0, -1.3000000000]) {
											translate(v = [0, -0.7500000000, 0]) {
												cube(center = true, size = [5, 1.0000000000, 3]);
											}
										}
									}
								}
							}
							translate(v = [-7.7500000000, 0, 0]) {
								translate(v = [0, 0, 1.5000000000]) {
									cube(center = true, size = [1.5000000000, 17.0000000000, 3]);
								}
							}
							mirror(v = [0, 1, 0]) {
								mirror(v = [1, 0, 0]) {
									union() {
										translate(v = [0, 7.7500000000, 0]) {
											translate(v = [0, 0, 1.5000000000]) {
												difference() {
													cube(center = true, size = [17.0000000000, 1.5000000000, 3]);
													translate(v = [0, 0, -1.3000000000]) {
														translate(v = [0, -0.7500000000, 0]) {
															cube(center = true, size = [5, 1.0000000000, 3]);
														}
													}
												}
											}
										}
										translate(v = [-7.7500000000, 0, 0]) {
											translate(v = [0, 0, 1.5000000000]) {
												cube(center = true, size = [1.5000000000, 17.0000000000, 3]);
											}
										}
									}
								}
							}
							translate(v = [0, 0, 1.5000000000]) {
								translate(v = [0, 10.5000000000, 0]) {
									cube(center = true, size = [25.0000000000, 4, 3]);
								}
							}
							rotate(a = 90) {
								translate(v = [0, 0, 1.5000000000]) {
									translate(v = [0, 10.5000000000, 0]) {
										cube(center = true, size = [25.0000000000, 4, 3]);
									}
								}
							}
							rotate(a = 180) {
								translate(v = [0, 0, 1.5000000000]) {
									translate(v = [0, 10.5000000000, 0]) {
										cube(center = true, size = [25.0000000000, 4, 3]);
									}
								}
							}
							rotate(a = 270) {
								translate(v = [0, 0, 1.5000000000]) {
									translate(v = [0, 10.5000000000, 0]) {
										cube(center = true, size = [25.0000000000, 4, 3]);
									}
								}
							}
						}
					}
				}
				translate(v = [-42.0000000000, 0, 0]) {
					translate(v = [0, 63.0000000000, 0]) {
						union() {
							translate(v = [0, 7.7500000000, 0]) {
								translate(v = [0, 0, 1.5000000000]) {
									difference() {
										cube(center = true, size = [17.0000000000, 1.5000000000, 3]);
										translate(v = [0, 0, -1.3000000000]) {
											translate(v = [0, -0.7500000000, 0]) {
												cube(center = true, size = [5, 1.0000000000, 3]);
											}
										}
									}
								}
							}
							translate(v = [-7.7500000000, 0, 0]) {
								translate(v = [0, 0, 1.5000000000]) {
									cube(center = true, size = [1.5000000000, 17.0000000000, 3]);
								}
							}
							mirror(v = [0, 1, 0]) {
								mirror(v = [1, 0, 0]) {
									union() {
										translate(v = [0, 7.7500000000, 0]) {
											translate(v = [0, 0, 1.5000000000]) {
												difference() {
													cube(center = true, size = [17.0000000000, 1.5000000000, 3]);
													translate(v = [0, 0, -1.3000000000]) {
														translate(v = [0, -0.7500000000, 0]) {
															cube(center = true, size = [5, 1.0000000000, 3]);
														}
													}
												}
											}
										}
										translate(v = [-7.7500000000, 0, 0]) {
											translate(v = [0, 0, 1.5000000000]) {
												cube(center = true, size = [1.5000000000, 17.0000000000, 3]);
											}
										}
									}
								}
							}
							translate(v = [0, 0, 1.5000000000]) {
								translate(v = [0, 10.5000000000, 0]) {
									cube(center = true, size = [25.0000000000, 4, 3]);
								}
							}
							rotate(a = 90) {
								translate(v = [0, 0, 1.5000000000]) {
									translate(v = [0, 10.5000000000, 0]) {
										cube(center = true, size = [25.0000000000, 4, 3]);
									}
								}
							}
							rotate(a = 180) {
								translate(v = [0, 0, 1.5000000000]) {
									translate(v = [0, 10.5000000000, 0]) {
										cube(center = true, size = [25.0000000000, 4, 3]);
									}
								}
							}
							rotate(a = 270) {
								translate(v = [0, 0, 1.5000000000]) {
									translate(v = [0, 10.5000000000, 0]) {
										cube(center = true, size = [25.0000000000, 4, 3]);
									}
								}
							}
						}
					}
				}
				translate(v = [-63.0000000000, 0, 0]) {
					translate(v = [0, 63.0000000000, 0]) {
						union() {
							translate(v = [0, 7.7500000000, 0]) {
								translate(v = [0, 0, 1.5000000000]) {
									difference() {
										cube(center = true, size = [17.0000000000, 1.5000000000, 3]);
										translate(v = [0, 0, -1.3000000000]) {
											translate(v = [0, -0.7500000000, 0]) {
												cube(center = true, size = [5, 1.0000000000, 3]);
											}
										}
									}
								}
							}
							translate(v = [-7.7500000000, 0, 0]) {
								translate(v = [0, 0, 1.5000000000]) {
									cube(center = true, size = [1.5000000000, 17.0000000000, 3]);
								}
							}
							mirror(v = [0, 1, 0]) {
								mirror(v = [1, 0, 0]) {
									union() {
										translate(v = [0, 7.7500000000, 0]) {
											translate(v = [0, 0, 1.5000000000]) {
												difference() {
													cube(center = true, size = [17.0000000000, 1.5000000000, 3]);
													translate(v = [0, 0, -1.3000000000]) {
														translate(v = [0, -0.7500000000, 0]) {
															cube(center = true, size = [5, 1.0000000000, 3]);
														}
													}
												}
											}
										}
										translate(v = [-7.7500000000, 0, 0]) {
											translate(v = [0, 0, 1.5000000000]) {
												cube(center = true, size = [1.5000000000, 17.0000000000, 3]);
											}
										}
									}
								}
							}
							translate(v = [0, 0, 1.5000000000]) {
								translate(v = [0, 10.5000000000, 0]) {
									cube(center = true, size = [25.0000000000, 4, 3]);
								}
							}
							rotate(a = 90) {
								translate(v = [0, 0, 1.5000000000]) {
									translate(v = [0, 10.5000000000, 0]) {
										cube(center = true, size = [25.0000000000, 4, 3]);
									}
								}
							}
							rotate(a = 180) {
								translate(v = [0, 0, 1.5000000000]) {
									translate(v = [0, 10.5000000000, 0]) {
										cube(center = true, size = [25.0000000000, 4, 3]);
									}
								}
							}
							rotate(a = 270) {
								translate(v = [0, 0, 1.5000000000]) {
									translate(v = [0, 10.5000000000, 0]) {
										cube(center = true, size = [25.0000000000, 4, 3]);
									}
								}
							}
						}
					}
				}
			}
		}
	}
}
/***********************************************
*********      SolidPython code:      **********
************************************************
 
#!/usr/bin/env python
import argparse
from os.path import abspath, dirname, join

from solid import *

from key_grid_tester import key_grid_tester


if __name__ == "__main__":
    parser = argparse.ArgumentParser(description="Process some integers.")
    parser.add_argument(
        "length",
        metavar="LENGTH",
        type=int,
        help="the length of the tester, in number of keys",
    )
    parser.add_argument(
        "width",
        metavar="WIDTH",
        type=int,
        help="the width of the tester, in number of keys",
    )
    parser.add_argument(
        "-o",
        "--output",
        metavar="FILE",
        type=str,
        default=None,
        help="the name of the file to write to",
    )

    args = parser.parse_args()

    filepath=join(
        dirname(dirname(abspath(__file__))),
        'files',
        args.output or f"key_grid_tester_{args.length}x{args.width}.scad"
    )

    print(filepath)

    scad_render_to_file(
        key_grid_tester(args.length, args.width),
        filepath=filepath,
        include_orig_code=True
    )
 
 
************************************************/
